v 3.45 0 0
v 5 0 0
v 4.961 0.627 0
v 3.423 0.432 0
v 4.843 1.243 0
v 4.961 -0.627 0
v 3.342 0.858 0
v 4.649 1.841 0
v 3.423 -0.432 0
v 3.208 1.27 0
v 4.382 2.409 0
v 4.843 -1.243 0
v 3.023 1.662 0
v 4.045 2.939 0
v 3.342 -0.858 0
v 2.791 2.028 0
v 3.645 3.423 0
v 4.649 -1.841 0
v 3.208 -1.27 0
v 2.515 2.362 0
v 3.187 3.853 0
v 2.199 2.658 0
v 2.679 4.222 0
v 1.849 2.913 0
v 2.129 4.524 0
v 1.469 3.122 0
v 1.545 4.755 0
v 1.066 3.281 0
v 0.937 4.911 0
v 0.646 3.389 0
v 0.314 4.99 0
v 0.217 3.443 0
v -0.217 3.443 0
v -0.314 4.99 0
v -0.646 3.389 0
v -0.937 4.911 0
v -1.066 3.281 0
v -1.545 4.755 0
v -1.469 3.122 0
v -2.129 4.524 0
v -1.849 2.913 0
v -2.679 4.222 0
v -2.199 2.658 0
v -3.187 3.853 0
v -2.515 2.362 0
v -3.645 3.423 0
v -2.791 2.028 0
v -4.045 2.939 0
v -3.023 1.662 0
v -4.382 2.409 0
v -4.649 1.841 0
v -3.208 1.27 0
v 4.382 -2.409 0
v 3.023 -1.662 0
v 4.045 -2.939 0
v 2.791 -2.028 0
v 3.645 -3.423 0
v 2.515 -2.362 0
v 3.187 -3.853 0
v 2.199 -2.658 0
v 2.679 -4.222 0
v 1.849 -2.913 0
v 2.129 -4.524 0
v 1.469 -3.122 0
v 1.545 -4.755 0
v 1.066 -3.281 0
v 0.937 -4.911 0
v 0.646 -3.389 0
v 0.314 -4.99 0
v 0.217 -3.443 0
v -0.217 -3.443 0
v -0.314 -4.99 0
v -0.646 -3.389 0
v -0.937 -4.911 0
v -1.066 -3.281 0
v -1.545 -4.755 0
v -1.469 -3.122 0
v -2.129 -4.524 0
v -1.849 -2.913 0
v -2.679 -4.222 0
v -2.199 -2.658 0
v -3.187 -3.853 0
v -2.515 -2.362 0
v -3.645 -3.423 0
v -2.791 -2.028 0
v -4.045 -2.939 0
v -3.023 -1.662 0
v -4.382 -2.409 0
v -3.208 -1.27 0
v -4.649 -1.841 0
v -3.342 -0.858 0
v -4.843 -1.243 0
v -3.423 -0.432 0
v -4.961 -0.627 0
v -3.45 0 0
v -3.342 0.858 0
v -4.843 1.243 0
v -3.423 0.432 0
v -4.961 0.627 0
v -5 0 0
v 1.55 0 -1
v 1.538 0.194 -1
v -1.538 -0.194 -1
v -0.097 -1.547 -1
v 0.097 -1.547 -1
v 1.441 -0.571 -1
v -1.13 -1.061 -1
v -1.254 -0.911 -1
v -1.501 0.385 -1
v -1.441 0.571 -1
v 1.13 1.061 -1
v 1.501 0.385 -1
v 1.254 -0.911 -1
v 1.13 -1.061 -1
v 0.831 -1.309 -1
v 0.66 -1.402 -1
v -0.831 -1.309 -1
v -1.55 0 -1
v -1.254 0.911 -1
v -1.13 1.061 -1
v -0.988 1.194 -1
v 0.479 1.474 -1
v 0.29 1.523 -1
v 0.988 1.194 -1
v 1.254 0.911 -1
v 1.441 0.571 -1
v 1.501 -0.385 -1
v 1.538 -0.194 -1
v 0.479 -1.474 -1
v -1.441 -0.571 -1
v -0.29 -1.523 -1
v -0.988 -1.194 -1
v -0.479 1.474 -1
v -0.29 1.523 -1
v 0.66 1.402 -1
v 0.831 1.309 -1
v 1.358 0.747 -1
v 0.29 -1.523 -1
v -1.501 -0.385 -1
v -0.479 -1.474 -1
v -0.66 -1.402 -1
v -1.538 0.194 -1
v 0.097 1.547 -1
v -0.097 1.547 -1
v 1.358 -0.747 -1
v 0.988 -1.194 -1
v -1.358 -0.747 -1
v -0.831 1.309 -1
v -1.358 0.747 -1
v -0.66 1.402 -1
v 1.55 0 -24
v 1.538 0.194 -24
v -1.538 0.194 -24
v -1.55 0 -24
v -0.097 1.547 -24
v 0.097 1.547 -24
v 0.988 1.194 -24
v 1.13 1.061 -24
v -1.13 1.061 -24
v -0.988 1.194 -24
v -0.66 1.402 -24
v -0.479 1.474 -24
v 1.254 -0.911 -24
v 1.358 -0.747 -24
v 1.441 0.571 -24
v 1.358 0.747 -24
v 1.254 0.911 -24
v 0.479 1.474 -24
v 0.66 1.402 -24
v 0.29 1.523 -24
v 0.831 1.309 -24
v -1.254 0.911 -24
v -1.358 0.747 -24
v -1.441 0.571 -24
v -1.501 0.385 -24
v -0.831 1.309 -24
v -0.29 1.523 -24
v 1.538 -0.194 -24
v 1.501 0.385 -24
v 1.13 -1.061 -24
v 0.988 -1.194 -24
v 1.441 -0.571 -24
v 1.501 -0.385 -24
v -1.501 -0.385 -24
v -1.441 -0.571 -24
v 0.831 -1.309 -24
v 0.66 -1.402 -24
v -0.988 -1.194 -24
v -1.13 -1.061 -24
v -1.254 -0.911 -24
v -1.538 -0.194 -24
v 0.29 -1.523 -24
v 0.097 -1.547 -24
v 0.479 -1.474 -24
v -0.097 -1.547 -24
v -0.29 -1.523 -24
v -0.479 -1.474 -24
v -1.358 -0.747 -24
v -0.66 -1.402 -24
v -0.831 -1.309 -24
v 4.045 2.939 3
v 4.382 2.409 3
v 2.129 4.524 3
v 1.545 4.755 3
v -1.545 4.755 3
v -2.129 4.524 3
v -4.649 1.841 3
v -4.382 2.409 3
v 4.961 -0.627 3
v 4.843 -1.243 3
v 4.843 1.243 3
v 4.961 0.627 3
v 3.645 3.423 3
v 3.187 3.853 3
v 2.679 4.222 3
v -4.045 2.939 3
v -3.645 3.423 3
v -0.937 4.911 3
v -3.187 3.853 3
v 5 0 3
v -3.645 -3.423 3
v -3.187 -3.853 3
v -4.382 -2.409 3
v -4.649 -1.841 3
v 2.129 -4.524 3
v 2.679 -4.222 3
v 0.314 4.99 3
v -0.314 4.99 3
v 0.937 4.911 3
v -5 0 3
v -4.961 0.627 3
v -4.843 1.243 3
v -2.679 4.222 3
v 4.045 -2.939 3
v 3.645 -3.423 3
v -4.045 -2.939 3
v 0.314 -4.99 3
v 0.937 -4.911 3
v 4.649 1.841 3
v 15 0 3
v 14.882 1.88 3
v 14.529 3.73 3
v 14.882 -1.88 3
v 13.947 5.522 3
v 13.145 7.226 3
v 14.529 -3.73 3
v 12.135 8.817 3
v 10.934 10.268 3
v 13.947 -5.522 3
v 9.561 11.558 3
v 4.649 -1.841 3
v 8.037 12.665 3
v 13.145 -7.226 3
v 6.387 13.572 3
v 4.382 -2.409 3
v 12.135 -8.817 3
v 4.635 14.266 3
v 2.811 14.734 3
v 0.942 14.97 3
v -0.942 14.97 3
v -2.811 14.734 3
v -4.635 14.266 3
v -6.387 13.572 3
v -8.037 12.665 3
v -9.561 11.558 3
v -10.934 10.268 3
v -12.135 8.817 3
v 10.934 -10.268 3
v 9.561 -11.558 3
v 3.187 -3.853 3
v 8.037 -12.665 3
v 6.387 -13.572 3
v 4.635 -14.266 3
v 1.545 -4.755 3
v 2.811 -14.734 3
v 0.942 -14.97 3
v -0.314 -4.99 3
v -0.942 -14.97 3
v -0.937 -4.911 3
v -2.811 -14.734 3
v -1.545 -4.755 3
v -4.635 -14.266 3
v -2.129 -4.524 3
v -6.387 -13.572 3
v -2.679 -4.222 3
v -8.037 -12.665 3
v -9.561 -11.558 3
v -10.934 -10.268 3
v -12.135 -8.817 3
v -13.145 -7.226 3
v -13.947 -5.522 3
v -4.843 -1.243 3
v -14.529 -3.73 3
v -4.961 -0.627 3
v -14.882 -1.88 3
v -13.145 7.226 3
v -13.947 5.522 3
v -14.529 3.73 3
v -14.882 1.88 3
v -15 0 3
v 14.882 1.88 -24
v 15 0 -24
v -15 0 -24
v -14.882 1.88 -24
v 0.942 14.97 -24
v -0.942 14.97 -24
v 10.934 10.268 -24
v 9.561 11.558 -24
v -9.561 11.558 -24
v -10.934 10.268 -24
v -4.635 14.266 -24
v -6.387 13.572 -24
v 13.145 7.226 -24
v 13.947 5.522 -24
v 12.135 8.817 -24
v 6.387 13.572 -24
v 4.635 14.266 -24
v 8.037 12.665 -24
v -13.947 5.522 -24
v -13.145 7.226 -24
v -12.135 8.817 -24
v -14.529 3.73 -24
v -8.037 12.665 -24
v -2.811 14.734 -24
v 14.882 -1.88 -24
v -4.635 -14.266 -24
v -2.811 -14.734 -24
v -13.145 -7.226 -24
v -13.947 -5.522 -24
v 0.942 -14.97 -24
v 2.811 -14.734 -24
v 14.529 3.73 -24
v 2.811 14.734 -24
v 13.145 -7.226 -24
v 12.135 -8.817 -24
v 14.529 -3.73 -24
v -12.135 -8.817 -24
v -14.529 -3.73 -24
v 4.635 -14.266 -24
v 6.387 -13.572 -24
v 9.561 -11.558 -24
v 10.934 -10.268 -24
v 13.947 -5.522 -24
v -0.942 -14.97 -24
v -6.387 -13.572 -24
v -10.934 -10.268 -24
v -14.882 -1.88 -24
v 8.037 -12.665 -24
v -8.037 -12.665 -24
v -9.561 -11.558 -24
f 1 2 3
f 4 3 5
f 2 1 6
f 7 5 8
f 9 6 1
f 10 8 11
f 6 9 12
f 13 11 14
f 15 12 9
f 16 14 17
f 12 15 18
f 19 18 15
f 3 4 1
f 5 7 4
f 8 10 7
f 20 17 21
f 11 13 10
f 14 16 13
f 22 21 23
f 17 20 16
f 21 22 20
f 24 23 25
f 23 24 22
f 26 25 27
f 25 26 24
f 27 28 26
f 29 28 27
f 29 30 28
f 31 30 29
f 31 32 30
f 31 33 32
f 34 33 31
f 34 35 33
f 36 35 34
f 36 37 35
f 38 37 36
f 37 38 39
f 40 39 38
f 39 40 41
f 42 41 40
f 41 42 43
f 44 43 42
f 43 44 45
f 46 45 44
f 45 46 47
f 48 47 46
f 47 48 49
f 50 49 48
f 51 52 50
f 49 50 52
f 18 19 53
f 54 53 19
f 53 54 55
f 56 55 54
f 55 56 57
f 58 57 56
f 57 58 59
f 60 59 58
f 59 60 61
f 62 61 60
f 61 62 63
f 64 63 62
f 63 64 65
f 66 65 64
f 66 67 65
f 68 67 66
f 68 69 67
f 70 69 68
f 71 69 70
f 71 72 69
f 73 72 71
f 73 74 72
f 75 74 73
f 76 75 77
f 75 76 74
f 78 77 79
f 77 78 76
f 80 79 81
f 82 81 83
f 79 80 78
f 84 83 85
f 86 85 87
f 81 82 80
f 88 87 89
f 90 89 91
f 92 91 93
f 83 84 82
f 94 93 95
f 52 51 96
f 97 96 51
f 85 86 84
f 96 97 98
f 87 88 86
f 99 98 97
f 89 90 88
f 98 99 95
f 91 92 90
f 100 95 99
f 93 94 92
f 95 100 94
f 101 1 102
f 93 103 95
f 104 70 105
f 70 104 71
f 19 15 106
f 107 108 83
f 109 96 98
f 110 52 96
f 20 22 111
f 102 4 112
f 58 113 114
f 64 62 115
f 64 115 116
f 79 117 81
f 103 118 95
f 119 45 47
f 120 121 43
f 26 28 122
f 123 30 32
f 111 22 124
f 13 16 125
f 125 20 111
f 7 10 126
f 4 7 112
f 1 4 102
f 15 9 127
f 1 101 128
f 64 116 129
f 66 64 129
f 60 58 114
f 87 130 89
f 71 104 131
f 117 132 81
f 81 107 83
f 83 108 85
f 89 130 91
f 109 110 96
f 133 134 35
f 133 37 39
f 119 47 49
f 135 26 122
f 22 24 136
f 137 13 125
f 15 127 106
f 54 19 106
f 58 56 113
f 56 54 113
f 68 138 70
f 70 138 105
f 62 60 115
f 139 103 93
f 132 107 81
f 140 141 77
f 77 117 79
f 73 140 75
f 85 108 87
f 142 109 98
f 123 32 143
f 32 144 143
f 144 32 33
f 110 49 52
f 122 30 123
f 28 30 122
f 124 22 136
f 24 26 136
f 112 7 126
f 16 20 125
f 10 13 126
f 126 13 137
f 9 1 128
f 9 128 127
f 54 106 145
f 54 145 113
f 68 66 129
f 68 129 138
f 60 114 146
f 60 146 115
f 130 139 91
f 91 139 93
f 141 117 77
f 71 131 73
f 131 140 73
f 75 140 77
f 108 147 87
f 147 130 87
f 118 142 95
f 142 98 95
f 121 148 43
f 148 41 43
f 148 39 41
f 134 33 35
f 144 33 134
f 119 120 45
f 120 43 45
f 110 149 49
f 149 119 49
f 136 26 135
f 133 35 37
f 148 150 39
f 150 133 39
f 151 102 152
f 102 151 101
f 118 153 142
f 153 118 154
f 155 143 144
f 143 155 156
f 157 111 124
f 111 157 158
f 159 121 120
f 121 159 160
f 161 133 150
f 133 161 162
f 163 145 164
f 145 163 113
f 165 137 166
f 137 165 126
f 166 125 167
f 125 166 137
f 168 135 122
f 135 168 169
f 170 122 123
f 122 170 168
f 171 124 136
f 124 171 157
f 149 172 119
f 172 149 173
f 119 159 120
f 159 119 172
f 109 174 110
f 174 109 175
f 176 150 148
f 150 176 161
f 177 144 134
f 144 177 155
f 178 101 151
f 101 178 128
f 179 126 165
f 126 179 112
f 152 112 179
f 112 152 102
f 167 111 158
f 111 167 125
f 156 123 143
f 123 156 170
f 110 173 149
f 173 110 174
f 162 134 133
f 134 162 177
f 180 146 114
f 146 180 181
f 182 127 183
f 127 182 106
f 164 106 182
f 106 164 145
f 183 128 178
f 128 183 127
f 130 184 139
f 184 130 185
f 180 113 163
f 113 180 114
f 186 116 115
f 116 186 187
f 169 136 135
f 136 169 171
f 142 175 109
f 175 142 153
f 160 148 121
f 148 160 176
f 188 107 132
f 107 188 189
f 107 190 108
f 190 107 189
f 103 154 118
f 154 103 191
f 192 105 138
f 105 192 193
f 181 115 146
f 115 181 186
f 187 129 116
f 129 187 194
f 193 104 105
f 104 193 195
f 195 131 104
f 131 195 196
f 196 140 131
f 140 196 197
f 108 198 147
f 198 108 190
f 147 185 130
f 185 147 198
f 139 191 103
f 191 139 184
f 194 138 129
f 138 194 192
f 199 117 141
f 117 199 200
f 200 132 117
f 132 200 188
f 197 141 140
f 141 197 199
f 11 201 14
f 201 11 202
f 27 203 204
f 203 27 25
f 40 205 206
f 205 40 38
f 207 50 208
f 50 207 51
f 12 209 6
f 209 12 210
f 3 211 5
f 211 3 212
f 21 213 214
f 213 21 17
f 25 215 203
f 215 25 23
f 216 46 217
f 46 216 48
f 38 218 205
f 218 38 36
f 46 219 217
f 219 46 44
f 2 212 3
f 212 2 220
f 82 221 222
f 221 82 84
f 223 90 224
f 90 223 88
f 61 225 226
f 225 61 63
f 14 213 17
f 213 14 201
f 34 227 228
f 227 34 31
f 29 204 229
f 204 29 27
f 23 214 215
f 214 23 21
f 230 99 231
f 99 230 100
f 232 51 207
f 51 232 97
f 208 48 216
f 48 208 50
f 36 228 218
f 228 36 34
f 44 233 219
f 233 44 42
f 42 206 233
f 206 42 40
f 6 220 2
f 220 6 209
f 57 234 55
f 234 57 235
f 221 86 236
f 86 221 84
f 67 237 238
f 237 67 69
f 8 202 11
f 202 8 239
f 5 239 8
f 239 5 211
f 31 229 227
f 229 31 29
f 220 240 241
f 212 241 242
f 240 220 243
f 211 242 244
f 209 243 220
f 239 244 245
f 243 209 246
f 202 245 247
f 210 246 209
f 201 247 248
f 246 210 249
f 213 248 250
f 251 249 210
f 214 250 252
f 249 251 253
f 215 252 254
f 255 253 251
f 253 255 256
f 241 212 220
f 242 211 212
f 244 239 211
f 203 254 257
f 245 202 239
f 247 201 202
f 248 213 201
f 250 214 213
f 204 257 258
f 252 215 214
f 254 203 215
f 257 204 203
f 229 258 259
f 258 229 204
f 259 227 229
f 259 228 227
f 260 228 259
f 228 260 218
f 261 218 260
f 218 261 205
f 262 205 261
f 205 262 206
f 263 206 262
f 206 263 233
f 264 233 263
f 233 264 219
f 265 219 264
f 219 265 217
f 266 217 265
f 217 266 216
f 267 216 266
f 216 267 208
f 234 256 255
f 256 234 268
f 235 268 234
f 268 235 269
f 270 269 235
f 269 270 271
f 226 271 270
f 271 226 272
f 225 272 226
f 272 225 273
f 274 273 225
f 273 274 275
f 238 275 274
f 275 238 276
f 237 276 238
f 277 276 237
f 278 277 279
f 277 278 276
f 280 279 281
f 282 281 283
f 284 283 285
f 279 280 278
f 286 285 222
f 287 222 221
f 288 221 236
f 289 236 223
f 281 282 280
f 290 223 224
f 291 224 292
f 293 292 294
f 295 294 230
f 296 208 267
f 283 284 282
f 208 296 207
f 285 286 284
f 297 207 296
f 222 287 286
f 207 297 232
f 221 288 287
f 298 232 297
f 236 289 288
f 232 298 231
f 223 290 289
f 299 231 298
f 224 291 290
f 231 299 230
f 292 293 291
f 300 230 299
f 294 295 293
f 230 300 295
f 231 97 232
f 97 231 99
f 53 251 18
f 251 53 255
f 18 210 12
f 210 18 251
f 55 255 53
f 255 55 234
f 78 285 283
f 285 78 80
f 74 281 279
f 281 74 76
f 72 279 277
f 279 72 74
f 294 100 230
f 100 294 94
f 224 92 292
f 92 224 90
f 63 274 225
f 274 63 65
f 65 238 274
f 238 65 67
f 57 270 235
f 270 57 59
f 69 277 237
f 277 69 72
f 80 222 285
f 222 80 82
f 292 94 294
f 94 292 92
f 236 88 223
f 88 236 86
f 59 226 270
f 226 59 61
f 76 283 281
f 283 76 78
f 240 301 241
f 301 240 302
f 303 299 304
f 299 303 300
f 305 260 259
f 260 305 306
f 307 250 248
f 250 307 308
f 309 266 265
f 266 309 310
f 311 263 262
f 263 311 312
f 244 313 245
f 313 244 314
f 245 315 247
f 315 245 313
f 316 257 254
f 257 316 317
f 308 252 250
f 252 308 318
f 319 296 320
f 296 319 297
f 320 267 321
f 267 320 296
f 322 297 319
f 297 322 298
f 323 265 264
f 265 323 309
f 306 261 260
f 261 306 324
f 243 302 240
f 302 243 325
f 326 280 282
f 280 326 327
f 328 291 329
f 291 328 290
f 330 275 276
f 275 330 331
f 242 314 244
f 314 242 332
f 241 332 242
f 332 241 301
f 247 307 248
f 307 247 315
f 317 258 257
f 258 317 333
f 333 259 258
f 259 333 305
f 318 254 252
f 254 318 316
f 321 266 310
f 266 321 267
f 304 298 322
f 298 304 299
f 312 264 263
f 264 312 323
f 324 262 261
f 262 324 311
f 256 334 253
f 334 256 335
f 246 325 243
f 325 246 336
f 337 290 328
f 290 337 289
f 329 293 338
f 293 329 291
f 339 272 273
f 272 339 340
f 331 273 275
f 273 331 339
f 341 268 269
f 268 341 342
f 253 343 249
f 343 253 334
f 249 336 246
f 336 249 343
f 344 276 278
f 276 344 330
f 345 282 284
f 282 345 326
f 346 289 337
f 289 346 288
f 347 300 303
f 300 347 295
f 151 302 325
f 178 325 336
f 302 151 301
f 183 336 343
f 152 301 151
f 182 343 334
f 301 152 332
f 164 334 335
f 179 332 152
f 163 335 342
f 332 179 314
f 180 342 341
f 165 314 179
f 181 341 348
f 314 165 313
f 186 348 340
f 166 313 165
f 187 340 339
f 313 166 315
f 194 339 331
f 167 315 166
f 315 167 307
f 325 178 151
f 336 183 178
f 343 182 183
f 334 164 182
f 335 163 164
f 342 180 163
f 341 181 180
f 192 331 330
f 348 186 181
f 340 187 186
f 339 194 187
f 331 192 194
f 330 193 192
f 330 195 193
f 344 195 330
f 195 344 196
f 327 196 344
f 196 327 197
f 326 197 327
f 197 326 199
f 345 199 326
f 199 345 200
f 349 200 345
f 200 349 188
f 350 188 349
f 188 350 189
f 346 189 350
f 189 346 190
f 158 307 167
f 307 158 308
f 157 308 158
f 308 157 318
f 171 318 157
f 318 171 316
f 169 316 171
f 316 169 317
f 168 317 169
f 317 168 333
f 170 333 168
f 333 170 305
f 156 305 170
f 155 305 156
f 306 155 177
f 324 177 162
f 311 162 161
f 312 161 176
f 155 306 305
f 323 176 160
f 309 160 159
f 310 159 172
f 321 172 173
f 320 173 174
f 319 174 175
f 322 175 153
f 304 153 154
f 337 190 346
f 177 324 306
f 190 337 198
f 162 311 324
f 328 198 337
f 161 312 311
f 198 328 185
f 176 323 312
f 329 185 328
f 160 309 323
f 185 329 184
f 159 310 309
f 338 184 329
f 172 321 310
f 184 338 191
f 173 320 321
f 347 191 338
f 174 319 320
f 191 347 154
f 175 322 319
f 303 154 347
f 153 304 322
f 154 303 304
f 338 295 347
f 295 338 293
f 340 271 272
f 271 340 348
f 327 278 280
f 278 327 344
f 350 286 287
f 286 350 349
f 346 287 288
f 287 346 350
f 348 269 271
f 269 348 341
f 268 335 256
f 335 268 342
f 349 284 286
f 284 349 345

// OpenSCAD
$fn = 50;

difference() {
	union() {
		translate(v = [0, 0, -24.0]) {
			cylinder(h = 27, r = 15.0);
		}
	}
	union() {
		translate(v = [0, 0, 0]) {
			rotate(a = [0, 0, 0]) {
				difference() {
					union() {
						translate(v = [0, 0, -27.0]) {
							cylinder(h = 27, r = 1.25);
						}
						translate(v = [0, 0, -1.0]) {
							cylinder(h = 1.0, r1 = 1.55, r2 = 3.45);
						}
						translate(v = [0, 0, -27.0]) {
							cylinder(h = 27, r = 1.55);
						}
						translate(v = [0, 0, -27.0]) {
							cylinder(h = 27, r = 1.25);
						}
					}
					union();
				}
			}
		}
		#cylinder(h = 3, r = 5.0);
	}
}
